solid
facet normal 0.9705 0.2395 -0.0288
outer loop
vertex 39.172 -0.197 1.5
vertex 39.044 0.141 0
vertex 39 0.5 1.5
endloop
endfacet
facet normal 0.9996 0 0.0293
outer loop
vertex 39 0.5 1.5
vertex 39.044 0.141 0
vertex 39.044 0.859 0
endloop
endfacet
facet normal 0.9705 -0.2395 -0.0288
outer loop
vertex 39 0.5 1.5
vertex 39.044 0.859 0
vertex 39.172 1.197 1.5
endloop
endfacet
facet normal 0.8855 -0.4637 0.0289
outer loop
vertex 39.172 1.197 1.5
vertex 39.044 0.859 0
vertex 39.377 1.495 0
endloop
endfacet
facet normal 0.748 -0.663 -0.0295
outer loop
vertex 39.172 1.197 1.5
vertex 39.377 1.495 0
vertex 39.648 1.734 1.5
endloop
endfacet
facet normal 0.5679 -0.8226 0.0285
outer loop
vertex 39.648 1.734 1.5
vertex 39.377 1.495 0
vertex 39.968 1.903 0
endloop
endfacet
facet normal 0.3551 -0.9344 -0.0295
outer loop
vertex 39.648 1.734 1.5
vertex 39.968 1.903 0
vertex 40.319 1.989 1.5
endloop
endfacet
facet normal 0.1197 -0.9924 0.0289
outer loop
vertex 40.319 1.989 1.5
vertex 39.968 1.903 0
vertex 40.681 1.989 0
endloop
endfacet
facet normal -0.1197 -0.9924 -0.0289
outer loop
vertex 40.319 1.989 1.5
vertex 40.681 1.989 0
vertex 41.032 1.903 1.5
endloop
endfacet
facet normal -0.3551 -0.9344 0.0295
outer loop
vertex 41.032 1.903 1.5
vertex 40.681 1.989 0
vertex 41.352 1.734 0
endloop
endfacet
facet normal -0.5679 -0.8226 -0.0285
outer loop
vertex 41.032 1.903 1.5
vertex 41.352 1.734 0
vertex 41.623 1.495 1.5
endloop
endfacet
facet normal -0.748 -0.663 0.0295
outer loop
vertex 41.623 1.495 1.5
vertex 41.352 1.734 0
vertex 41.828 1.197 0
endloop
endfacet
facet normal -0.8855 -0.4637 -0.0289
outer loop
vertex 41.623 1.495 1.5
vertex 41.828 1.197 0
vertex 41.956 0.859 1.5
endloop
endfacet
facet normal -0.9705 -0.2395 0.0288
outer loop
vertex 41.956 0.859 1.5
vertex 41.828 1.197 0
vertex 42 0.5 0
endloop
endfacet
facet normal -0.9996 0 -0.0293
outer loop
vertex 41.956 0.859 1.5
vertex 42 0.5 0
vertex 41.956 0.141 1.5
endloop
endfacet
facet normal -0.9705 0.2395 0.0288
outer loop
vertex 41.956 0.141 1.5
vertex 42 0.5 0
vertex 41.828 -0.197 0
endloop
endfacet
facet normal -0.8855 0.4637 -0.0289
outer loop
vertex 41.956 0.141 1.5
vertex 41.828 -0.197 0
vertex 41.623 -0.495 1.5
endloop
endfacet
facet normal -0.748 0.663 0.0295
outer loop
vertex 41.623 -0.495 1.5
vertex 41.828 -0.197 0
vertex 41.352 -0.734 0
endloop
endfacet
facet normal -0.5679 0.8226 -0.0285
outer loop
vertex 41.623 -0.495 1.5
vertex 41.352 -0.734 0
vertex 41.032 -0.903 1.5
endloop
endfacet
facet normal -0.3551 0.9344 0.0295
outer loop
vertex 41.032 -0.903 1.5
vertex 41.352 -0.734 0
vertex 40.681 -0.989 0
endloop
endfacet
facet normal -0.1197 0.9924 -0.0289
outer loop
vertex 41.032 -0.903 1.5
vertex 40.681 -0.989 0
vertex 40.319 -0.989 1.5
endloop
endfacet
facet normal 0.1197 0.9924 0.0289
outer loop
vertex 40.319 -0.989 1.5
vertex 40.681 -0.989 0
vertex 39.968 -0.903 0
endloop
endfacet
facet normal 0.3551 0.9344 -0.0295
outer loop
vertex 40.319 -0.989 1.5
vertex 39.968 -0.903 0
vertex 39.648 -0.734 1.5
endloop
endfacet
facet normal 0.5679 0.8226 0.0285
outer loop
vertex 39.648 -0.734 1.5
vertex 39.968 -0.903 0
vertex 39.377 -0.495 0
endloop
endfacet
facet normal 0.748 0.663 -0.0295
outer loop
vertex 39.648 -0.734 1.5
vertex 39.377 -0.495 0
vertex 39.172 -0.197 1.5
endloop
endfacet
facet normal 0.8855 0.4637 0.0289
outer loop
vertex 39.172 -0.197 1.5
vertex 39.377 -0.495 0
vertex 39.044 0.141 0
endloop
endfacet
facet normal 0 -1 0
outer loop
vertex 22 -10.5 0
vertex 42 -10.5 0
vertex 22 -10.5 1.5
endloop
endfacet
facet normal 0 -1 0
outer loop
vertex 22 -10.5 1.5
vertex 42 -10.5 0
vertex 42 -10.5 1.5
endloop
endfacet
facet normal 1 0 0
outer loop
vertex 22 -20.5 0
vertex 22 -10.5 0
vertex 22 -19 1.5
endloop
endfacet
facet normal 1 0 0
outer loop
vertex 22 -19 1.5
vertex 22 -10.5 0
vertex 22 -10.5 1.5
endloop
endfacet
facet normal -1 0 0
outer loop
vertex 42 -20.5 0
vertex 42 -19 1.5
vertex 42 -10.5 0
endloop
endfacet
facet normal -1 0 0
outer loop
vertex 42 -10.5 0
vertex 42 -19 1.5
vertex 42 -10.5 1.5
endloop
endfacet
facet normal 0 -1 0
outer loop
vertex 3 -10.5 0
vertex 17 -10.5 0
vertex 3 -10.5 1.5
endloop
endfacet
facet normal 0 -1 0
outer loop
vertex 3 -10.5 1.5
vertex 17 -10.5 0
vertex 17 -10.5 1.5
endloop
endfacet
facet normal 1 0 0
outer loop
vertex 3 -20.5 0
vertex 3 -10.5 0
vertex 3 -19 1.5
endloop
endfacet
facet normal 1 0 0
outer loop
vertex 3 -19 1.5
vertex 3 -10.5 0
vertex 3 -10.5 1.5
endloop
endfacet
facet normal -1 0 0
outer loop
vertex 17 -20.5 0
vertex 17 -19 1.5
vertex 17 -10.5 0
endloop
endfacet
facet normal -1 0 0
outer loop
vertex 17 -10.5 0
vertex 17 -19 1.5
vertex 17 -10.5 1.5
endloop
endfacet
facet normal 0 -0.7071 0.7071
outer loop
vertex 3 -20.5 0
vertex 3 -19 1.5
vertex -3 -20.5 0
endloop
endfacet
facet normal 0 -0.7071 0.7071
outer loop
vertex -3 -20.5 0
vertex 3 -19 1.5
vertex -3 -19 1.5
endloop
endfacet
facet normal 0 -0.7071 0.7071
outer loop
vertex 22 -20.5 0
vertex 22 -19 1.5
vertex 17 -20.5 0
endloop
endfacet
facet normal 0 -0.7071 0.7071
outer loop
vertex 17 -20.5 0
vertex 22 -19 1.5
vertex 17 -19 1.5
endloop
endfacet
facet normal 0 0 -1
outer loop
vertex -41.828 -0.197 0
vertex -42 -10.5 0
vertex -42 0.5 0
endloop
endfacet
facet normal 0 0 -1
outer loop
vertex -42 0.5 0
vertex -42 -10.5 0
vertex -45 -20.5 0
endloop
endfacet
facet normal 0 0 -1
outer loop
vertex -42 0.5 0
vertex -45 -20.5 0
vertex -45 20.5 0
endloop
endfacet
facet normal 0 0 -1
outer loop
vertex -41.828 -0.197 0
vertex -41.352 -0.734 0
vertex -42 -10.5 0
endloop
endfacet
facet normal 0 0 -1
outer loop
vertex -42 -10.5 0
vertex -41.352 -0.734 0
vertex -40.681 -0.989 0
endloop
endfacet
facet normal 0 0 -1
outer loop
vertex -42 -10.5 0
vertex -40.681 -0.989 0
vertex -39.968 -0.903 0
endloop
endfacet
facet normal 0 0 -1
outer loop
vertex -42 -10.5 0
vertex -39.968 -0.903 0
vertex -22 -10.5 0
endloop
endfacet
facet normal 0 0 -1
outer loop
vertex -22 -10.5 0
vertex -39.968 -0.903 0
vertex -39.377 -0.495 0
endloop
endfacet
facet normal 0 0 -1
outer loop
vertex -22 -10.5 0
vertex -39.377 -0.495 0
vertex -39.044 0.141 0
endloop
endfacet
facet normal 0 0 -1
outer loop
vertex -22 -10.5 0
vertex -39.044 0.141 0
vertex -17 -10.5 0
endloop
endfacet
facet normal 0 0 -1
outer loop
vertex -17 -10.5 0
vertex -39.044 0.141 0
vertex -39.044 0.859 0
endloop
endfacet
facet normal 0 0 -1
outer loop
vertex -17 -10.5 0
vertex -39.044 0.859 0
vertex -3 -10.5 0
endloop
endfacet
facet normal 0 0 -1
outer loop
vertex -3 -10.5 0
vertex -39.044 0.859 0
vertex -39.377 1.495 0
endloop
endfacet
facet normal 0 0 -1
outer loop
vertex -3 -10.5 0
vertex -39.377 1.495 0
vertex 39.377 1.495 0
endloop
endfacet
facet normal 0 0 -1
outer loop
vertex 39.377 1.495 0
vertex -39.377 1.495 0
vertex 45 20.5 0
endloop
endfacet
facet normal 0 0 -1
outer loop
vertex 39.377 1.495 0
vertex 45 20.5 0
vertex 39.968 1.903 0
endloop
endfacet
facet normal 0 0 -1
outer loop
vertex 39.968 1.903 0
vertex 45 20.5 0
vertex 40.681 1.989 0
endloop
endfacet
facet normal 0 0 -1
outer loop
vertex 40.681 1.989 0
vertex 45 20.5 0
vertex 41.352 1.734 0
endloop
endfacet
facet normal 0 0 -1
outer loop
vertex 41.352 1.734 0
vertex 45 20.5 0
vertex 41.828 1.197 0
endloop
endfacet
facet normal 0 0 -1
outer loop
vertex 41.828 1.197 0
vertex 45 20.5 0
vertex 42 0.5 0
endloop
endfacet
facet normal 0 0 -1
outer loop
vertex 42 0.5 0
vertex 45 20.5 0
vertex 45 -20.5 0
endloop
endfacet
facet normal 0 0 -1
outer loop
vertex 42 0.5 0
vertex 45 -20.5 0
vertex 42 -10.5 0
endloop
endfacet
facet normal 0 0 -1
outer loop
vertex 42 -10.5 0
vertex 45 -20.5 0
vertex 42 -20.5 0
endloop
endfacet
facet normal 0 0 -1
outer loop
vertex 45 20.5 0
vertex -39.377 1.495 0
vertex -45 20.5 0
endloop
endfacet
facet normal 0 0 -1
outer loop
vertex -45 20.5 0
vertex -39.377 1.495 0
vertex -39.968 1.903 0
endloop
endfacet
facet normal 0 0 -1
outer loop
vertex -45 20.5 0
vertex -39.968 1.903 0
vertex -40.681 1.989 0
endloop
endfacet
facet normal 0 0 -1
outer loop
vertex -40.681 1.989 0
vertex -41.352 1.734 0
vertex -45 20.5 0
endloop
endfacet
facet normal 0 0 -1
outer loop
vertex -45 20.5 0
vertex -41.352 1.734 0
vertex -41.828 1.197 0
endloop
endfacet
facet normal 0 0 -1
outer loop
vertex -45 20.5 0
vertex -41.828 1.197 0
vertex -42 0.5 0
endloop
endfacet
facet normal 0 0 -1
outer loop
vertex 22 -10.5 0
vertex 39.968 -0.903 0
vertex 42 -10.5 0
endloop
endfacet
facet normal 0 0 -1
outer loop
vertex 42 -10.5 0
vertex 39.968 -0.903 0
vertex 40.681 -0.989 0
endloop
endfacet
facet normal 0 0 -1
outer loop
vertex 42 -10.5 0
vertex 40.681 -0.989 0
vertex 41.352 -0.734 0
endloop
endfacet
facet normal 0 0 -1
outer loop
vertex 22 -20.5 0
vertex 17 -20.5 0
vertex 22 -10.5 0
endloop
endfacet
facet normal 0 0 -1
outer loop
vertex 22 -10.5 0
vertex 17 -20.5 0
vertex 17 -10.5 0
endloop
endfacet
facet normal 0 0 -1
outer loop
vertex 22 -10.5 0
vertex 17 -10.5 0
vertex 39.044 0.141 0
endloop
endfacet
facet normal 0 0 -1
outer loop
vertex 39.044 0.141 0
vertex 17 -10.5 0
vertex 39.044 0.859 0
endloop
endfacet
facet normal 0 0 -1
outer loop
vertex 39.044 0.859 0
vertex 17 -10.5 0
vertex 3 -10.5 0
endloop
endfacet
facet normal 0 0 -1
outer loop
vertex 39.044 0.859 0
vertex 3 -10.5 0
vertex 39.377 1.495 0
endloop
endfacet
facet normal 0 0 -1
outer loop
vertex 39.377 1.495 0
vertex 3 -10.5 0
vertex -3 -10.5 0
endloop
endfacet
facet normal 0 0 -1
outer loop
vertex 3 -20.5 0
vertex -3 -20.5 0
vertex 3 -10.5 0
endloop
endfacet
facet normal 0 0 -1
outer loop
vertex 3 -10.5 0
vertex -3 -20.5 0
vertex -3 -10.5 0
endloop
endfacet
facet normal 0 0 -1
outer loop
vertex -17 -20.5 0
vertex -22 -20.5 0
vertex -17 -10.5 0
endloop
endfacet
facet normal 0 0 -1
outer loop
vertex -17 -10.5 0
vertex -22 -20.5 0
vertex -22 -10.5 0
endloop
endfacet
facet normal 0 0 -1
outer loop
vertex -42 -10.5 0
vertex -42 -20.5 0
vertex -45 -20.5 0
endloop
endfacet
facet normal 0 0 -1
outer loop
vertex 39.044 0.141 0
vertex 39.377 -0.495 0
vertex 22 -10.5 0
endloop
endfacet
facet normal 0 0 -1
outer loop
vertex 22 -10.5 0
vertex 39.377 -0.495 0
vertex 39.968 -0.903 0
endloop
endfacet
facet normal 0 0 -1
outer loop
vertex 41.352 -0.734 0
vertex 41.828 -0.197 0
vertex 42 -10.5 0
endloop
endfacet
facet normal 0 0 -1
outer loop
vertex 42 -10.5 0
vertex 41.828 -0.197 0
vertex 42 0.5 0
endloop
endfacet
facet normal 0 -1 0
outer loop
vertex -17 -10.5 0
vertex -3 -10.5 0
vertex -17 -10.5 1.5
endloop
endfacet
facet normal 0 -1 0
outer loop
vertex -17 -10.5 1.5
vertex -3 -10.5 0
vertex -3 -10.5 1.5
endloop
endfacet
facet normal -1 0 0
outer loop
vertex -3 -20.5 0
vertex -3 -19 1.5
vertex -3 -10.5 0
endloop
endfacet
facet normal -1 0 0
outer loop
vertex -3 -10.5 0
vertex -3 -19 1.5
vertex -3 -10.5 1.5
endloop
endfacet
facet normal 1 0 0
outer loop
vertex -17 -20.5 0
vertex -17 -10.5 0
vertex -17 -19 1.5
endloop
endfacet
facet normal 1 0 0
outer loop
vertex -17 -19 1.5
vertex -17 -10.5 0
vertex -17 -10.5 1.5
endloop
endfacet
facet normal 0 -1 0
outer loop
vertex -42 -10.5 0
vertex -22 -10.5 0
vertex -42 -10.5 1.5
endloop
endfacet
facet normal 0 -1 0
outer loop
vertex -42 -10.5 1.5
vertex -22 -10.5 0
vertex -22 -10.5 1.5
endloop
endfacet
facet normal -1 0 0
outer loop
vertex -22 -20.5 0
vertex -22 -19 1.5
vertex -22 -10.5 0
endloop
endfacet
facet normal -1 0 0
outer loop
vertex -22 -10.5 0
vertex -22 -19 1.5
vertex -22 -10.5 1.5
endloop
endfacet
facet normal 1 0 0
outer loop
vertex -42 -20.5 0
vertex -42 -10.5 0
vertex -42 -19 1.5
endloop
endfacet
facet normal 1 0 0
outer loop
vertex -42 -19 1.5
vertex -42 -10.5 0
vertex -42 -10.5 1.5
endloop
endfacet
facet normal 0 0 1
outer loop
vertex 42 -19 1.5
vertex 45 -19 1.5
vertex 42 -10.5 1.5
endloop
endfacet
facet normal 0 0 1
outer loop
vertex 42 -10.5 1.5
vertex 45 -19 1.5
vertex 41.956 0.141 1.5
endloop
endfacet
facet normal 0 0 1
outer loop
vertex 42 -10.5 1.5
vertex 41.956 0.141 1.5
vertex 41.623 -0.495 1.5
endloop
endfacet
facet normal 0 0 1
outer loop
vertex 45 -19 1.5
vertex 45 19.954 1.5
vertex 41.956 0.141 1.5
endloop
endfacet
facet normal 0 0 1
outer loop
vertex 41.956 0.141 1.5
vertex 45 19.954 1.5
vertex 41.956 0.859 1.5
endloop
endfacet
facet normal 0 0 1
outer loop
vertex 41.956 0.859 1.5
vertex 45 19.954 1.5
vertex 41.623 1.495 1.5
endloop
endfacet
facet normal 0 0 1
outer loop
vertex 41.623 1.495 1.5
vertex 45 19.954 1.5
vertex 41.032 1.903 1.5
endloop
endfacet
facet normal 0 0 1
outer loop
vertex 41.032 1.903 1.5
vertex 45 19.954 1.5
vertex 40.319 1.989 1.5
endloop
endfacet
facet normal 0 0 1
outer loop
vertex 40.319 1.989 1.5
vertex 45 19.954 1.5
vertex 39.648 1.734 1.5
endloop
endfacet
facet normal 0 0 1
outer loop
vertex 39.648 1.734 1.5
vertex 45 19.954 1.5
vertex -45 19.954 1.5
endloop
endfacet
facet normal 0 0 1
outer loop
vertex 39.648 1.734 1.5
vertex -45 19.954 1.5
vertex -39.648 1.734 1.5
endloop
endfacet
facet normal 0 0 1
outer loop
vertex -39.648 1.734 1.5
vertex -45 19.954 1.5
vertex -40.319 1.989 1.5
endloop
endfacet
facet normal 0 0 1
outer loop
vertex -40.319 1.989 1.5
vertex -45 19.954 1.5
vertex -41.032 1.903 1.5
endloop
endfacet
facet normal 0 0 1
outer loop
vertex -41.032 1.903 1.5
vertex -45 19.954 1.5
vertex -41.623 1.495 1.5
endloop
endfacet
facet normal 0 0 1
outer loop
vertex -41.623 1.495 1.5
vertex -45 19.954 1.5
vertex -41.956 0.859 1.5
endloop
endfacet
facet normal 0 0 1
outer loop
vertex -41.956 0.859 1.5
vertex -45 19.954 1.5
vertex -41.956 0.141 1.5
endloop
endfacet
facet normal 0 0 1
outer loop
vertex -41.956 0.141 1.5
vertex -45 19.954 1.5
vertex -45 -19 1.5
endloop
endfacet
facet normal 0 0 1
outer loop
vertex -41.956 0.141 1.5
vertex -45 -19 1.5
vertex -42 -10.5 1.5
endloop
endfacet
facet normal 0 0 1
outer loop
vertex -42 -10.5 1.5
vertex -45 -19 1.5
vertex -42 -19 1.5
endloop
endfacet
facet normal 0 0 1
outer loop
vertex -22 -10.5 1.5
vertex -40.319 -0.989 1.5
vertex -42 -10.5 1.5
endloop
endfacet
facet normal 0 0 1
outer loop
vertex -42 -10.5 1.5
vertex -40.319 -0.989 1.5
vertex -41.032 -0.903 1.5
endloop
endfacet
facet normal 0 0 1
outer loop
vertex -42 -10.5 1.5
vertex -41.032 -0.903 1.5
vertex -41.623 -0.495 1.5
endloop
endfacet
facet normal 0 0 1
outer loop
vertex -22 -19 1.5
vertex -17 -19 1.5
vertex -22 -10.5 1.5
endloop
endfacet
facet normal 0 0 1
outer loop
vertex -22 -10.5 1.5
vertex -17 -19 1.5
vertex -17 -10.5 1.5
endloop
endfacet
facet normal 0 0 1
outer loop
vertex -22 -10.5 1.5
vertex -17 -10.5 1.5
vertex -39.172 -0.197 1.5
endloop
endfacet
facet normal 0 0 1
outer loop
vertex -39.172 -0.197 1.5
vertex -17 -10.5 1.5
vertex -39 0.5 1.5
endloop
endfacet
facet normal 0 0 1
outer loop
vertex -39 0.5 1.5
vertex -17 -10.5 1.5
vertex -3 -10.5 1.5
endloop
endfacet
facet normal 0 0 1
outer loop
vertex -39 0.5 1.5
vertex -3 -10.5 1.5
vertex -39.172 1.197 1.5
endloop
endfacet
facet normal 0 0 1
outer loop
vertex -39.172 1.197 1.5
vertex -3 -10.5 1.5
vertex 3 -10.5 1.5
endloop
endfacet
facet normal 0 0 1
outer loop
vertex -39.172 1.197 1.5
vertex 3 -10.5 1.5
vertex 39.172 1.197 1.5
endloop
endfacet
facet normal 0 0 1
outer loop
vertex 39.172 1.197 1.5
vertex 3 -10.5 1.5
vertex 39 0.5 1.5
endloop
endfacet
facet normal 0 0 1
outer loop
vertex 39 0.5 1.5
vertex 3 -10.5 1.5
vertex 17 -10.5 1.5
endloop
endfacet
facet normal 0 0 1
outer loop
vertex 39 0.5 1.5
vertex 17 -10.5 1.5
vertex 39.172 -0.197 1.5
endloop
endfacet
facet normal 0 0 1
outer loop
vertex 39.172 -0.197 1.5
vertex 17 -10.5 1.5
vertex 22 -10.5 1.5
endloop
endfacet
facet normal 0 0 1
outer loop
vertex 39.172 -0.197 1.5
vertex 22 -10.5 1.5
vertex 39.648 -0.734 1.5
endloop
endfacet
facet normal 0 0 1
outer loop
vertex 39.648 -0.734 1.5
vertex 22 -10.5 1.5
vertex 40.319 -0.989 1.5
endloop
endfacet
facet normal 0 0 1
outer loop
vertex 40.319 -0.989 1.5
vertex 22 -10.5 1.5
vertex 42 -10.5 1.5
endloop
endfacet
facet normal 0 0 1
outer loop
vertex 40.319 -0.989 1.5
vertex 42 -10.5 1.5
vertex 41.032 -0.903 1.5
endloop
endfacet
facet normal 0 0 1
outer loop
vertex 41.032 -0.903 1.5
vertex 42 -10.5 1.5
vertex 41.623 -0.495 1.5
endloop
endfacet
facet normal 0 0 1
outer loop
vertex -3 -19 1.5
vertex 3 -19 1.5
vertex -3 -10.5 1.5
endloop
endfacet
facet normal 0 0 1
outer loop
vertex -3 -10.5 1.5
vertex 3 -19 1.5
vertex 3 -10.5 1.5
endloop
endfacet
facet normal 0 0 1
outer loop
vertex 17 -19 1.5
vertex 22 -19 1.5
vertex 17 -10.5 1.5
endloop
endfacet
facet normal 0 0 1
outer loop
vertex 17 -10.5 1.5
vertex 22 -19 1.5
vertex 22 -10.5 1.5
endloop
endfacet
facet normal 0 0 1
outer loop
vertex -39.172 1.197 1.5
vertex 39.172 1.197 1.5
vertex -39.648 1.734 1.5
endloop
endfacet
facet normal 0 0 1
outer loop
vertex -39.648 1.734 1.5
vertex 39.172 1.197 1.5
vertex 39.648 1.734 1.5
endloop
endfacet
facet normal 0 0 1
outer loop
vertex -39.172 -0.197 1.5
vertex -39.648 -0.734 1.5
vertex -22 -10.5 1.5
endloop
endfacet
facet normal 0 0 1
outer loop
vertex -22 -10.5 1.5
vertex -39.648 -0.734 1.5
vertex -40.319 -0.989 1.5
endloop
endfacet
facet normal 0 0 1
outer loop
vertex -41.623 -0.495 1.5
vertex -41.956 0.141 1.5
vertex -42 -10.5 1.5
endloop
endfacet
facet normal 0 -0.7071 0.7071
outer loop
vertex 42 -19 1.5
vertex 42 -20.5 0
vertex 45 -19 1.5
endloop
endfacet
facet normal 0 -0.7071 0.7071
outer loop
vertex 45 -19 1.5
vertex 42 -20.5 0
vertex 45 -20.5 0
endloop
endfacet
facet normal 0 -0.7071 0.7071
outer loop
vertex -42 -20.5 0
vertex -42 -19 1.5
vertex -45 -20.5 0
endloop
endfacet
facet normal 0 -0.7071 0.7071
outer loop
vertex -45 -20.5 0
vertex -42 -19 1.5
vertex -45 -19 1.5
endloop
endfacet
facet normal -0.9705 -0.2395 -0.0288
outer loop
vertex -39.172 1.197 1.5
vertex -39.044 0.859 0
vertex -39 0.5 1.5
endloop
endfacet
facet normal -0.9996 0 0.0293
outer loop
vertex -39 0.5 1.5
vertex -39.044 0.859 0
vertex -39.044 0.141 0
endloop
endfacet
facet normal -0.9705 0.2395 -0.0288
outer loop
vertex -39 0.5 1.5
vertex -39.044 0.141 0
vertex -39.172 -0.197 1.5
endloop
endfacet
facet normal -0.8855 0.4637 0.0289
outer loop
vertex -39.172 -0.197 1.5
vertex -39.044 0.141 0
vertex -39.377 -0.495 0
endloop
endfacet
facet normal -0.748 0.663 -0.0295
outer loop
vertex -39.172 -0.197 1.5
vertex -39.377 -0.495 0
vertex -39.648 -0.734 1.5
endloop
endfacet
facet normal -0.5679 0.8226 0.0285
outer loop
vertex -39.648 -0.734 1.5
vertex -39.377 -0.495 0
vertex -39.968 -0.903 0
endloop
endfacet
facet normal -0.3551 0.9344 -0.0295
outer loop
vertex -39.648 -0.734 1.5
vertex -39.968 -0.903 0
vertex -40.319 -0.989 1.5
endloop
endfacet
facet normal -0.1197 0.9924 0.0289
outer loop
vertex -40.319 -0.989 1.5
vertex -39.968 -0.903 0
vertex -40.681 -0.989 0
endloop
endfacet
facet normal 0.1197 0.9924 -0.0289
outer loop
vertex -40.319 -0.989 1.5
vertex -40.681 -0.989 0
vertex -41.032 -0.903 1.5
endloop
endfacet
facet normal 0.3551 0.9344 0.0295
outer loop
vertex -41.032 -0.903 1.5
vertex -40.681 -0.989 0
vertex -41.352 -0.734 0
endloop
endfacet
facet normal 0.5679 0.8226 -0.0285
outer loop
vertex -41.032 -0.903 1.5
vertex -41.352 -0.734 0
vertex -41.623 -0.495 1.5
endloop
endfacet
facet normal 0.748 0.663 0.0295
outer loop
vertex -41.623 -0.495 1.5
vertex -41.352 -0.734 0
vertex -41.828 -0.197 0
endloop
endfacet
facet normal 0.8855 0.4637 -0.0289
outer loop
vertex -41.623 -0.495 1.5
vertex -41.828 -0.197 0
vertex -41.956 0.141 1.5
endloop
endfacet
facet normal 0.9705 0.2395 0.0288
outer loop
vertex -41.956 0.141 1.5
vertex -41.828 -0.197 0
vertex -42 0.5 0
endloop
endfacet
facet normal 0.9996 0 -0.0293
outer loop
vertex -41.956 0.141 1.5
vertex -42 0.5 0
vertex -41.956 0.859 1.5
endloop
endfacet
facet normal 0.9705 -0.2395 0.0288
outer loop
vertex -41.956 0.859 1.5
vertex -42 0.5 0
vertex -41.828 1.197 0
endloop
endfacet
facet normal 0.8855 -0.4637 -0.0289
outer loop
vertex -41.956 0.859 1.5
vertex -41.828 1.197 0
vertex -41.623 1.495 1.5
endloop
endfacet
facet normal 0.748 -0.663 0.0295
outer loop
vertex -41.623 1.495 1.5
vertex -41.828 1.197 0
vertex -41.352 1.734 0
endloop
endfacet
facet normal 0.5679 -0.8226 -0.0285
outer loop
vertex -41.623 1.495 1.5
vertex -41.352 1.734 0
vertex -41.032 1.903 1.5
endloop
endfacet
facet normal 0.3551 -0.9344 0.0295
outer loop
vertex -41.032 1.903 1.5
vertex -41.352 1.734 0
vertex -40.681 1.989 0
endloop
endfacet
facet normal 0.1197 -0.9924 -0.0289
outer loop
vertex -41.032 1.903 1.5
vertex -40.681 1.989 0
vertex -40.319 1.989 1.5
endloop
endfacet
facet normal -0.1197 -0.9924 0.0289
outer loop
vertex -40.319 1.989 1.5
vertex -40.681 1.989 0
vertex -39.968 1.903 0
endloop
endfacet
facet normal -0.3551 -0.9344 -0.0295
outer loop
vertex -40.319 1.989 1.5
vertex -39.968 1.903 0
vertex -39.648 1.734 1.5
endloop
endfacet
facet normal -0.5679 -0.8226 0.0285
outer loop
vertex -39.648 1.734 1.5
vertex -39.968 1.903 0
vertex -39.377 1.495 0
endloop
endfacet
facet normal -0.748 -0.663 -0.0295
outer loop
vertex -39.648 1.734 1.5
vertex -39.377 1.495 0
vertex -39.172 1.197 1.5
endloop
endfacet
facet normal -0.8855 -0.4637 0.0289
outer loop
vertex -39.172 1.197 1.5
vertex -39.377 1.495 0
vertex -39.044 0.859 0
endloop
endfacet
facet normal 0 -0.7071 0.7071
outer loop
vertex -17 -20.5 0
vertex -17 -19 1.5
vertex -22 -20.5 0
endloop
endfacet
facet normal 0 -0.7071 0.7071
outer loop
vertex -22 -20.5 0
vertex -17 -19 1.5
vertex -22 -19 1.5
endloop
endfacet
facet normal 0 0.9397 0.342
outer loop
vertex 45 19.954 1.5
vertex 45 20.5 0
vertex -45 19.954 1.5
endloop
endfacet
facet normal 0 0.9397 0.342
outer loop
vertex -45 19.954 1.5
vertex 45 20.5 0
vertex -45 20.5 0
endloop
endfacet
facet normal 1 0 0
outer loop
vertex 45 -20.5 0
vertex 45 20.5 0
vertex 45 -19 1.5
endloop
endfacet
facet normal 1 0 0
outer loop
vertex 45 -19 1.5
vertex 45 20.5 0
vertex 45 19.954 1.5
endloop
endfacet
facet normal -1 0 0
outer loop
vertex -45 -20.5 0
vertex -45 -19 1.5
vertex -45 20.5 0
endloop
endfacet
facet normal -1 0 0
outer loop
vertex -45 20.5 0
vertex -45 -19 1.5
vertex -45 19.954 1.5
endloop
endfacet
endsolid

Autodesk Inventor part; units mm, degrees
ref_plane "YZ Plane" through (0, 0, 0) normal (1, 0, 0) x (0, 1, 0)
ref_plane "XZ Plane" through (0, 0, 0) normal (0, 1, 0) x (-1, 0, 0)
ref_plane "XY Plane" through (0, 0, 0) normal (0, 0, 1) x (1, 0, 0)
sketch "Szkic1" plane through (0, 0, 0) normal (0, 0, 1) x (1, 0, 0)
  line L0 (-63, 0) -> (63, 0) projected
  line L1 (0, -28.7) -> (0, 28.7) projected
  line L2 (-45, -20.5) -> (45, -20.5)
  line L3 (45, -20.5) -> (45, 20.5)
  line L4 (45, 20.5) -> (-45, 20.5)
  line L5 (-45, 20.5) -> (-45, -20.5)
  line L6 (-45, -20.5) -> (45, 20.5) construction
  line L7 (45, -20.5) -> (-45, 20.5) construction
  point P0 (0, 0)
  dimension "d0" = 90
  dimension "d1" = 41
extrude "Wyciągnięcie proste1" add sketch "Szkic1" along normal blind 1.5
sketch "Szkic2" plane through (45, -20.5, 0) normal (1, 0, 0) x (0, 0, -1)
  line L0 (0, 0) -> (0, 41) projected
  line L1 (0, 41) -> (-1.5, 41) projected
  line L2 (-1.5, 0) -> (-1.5, 41) projected
  line L3 (0, 0) -> (-1.5, 0) projected
  line L4 (0, 0) -> (-1.5, 0) projected
  line L5 (0, 0) -> (-1.5, 1.5)
  line L6 (-1.5, 0) -> (-1.5, 41) projected
  line L7 (0, 41) -> (-1.5, 41) projected
  line L8 (0, 41) -> (-1.5, 40.454)
  point P0 (0, 20.5)
  dimension "d4" = 45
  dimension "d5" = 70
extrude "Wyciągnięcie proste2" cut sketch "Szkic2" against normal blind 90 contours L3 L2 L5 | L8 L2 L1
sketch "Szkic3" plane through (0, 0, 0) normal (0, 0, -1) x (-1, 0, 0)
  line L0 (45, 20.5) -> (45, -20.5) projected
  line L1 (-45, 20.5) -> (45, 20.5) projected
  point P0 (0, 0)
  point P1 (40.5, 0.5)
  dimension "d8" = 4.5
  dimension "d9" = 20
hole "Otwór1" at (-40.5, 0.5, 0) direction (0, 0, 1) diameter 3 depth 4
sketch "Szkic4" plane through (0, 0, 1.5) normal (0, 0, 1) x (1, 0, 0)
  circle A0 centre (-40.5, 0.5) radius 1.5 projected
  line L0 (-45, -19) -> (45, -19) projected
  line L1 (45, -19) -> (45, 19.954) projected
  line L2 (45, 19.954) -> (-45, 19.954) projected
  line L3 (-45, 19.954) -> (-45, -19) projected
  line L4 (0, -28.7) -> (0, 28.7) projected
  line L5 (-63, 0) -> (63, 0) projected
  line L6 (-45, -20.5) -> (45, -20.5) projected
  line L7 (-45, -20.5) -> (-45, -19) projected
  line L8 (45, -19) -> (45, -20.5) projected
  line L9 (-3, -20.5) -> (-17, -20.5)
  line L10 (-17, -20.5) -> (-17, -10.5)
  line L11 (-17, -10.5) -> (-3, -10.5)
  line L12 (-3, -10.5) -> (-3, -20.5)
  line L13 (-22, -20.5) -> (-42, -20.5)
  line L14 (-42, -20.5) -> (-42, -10.5)
  line L15 (-42, -10.5) -> (-22, -10.5)
  line L16 (-22, -10.5) -> (-22, -20.5)
  point P0 (0, 0)
  point P1 (-42, -20.5)
  dimension "d17" = 14
  dimension "d18" = 20
  dimension "d19" = 10
  dimension "d20" = 10
  dimension "d21" = 5
  dimension "d22" = 3
extrude "Wyciągnięcie proste3" cut sketch "Szkic4" against normal blind 5 contours L14 L15 L16 L0 | L0 L16 L6 L14 | L12 L6 L10 L0 | L0 L10 L11 L12
mirror "Odbij2" about plane through (0, 0, 0) normal (1, 0, 0) of "Wyciągnięcie proste3", "Otwór1"
properties part number "pług_część2" material "Stal"
